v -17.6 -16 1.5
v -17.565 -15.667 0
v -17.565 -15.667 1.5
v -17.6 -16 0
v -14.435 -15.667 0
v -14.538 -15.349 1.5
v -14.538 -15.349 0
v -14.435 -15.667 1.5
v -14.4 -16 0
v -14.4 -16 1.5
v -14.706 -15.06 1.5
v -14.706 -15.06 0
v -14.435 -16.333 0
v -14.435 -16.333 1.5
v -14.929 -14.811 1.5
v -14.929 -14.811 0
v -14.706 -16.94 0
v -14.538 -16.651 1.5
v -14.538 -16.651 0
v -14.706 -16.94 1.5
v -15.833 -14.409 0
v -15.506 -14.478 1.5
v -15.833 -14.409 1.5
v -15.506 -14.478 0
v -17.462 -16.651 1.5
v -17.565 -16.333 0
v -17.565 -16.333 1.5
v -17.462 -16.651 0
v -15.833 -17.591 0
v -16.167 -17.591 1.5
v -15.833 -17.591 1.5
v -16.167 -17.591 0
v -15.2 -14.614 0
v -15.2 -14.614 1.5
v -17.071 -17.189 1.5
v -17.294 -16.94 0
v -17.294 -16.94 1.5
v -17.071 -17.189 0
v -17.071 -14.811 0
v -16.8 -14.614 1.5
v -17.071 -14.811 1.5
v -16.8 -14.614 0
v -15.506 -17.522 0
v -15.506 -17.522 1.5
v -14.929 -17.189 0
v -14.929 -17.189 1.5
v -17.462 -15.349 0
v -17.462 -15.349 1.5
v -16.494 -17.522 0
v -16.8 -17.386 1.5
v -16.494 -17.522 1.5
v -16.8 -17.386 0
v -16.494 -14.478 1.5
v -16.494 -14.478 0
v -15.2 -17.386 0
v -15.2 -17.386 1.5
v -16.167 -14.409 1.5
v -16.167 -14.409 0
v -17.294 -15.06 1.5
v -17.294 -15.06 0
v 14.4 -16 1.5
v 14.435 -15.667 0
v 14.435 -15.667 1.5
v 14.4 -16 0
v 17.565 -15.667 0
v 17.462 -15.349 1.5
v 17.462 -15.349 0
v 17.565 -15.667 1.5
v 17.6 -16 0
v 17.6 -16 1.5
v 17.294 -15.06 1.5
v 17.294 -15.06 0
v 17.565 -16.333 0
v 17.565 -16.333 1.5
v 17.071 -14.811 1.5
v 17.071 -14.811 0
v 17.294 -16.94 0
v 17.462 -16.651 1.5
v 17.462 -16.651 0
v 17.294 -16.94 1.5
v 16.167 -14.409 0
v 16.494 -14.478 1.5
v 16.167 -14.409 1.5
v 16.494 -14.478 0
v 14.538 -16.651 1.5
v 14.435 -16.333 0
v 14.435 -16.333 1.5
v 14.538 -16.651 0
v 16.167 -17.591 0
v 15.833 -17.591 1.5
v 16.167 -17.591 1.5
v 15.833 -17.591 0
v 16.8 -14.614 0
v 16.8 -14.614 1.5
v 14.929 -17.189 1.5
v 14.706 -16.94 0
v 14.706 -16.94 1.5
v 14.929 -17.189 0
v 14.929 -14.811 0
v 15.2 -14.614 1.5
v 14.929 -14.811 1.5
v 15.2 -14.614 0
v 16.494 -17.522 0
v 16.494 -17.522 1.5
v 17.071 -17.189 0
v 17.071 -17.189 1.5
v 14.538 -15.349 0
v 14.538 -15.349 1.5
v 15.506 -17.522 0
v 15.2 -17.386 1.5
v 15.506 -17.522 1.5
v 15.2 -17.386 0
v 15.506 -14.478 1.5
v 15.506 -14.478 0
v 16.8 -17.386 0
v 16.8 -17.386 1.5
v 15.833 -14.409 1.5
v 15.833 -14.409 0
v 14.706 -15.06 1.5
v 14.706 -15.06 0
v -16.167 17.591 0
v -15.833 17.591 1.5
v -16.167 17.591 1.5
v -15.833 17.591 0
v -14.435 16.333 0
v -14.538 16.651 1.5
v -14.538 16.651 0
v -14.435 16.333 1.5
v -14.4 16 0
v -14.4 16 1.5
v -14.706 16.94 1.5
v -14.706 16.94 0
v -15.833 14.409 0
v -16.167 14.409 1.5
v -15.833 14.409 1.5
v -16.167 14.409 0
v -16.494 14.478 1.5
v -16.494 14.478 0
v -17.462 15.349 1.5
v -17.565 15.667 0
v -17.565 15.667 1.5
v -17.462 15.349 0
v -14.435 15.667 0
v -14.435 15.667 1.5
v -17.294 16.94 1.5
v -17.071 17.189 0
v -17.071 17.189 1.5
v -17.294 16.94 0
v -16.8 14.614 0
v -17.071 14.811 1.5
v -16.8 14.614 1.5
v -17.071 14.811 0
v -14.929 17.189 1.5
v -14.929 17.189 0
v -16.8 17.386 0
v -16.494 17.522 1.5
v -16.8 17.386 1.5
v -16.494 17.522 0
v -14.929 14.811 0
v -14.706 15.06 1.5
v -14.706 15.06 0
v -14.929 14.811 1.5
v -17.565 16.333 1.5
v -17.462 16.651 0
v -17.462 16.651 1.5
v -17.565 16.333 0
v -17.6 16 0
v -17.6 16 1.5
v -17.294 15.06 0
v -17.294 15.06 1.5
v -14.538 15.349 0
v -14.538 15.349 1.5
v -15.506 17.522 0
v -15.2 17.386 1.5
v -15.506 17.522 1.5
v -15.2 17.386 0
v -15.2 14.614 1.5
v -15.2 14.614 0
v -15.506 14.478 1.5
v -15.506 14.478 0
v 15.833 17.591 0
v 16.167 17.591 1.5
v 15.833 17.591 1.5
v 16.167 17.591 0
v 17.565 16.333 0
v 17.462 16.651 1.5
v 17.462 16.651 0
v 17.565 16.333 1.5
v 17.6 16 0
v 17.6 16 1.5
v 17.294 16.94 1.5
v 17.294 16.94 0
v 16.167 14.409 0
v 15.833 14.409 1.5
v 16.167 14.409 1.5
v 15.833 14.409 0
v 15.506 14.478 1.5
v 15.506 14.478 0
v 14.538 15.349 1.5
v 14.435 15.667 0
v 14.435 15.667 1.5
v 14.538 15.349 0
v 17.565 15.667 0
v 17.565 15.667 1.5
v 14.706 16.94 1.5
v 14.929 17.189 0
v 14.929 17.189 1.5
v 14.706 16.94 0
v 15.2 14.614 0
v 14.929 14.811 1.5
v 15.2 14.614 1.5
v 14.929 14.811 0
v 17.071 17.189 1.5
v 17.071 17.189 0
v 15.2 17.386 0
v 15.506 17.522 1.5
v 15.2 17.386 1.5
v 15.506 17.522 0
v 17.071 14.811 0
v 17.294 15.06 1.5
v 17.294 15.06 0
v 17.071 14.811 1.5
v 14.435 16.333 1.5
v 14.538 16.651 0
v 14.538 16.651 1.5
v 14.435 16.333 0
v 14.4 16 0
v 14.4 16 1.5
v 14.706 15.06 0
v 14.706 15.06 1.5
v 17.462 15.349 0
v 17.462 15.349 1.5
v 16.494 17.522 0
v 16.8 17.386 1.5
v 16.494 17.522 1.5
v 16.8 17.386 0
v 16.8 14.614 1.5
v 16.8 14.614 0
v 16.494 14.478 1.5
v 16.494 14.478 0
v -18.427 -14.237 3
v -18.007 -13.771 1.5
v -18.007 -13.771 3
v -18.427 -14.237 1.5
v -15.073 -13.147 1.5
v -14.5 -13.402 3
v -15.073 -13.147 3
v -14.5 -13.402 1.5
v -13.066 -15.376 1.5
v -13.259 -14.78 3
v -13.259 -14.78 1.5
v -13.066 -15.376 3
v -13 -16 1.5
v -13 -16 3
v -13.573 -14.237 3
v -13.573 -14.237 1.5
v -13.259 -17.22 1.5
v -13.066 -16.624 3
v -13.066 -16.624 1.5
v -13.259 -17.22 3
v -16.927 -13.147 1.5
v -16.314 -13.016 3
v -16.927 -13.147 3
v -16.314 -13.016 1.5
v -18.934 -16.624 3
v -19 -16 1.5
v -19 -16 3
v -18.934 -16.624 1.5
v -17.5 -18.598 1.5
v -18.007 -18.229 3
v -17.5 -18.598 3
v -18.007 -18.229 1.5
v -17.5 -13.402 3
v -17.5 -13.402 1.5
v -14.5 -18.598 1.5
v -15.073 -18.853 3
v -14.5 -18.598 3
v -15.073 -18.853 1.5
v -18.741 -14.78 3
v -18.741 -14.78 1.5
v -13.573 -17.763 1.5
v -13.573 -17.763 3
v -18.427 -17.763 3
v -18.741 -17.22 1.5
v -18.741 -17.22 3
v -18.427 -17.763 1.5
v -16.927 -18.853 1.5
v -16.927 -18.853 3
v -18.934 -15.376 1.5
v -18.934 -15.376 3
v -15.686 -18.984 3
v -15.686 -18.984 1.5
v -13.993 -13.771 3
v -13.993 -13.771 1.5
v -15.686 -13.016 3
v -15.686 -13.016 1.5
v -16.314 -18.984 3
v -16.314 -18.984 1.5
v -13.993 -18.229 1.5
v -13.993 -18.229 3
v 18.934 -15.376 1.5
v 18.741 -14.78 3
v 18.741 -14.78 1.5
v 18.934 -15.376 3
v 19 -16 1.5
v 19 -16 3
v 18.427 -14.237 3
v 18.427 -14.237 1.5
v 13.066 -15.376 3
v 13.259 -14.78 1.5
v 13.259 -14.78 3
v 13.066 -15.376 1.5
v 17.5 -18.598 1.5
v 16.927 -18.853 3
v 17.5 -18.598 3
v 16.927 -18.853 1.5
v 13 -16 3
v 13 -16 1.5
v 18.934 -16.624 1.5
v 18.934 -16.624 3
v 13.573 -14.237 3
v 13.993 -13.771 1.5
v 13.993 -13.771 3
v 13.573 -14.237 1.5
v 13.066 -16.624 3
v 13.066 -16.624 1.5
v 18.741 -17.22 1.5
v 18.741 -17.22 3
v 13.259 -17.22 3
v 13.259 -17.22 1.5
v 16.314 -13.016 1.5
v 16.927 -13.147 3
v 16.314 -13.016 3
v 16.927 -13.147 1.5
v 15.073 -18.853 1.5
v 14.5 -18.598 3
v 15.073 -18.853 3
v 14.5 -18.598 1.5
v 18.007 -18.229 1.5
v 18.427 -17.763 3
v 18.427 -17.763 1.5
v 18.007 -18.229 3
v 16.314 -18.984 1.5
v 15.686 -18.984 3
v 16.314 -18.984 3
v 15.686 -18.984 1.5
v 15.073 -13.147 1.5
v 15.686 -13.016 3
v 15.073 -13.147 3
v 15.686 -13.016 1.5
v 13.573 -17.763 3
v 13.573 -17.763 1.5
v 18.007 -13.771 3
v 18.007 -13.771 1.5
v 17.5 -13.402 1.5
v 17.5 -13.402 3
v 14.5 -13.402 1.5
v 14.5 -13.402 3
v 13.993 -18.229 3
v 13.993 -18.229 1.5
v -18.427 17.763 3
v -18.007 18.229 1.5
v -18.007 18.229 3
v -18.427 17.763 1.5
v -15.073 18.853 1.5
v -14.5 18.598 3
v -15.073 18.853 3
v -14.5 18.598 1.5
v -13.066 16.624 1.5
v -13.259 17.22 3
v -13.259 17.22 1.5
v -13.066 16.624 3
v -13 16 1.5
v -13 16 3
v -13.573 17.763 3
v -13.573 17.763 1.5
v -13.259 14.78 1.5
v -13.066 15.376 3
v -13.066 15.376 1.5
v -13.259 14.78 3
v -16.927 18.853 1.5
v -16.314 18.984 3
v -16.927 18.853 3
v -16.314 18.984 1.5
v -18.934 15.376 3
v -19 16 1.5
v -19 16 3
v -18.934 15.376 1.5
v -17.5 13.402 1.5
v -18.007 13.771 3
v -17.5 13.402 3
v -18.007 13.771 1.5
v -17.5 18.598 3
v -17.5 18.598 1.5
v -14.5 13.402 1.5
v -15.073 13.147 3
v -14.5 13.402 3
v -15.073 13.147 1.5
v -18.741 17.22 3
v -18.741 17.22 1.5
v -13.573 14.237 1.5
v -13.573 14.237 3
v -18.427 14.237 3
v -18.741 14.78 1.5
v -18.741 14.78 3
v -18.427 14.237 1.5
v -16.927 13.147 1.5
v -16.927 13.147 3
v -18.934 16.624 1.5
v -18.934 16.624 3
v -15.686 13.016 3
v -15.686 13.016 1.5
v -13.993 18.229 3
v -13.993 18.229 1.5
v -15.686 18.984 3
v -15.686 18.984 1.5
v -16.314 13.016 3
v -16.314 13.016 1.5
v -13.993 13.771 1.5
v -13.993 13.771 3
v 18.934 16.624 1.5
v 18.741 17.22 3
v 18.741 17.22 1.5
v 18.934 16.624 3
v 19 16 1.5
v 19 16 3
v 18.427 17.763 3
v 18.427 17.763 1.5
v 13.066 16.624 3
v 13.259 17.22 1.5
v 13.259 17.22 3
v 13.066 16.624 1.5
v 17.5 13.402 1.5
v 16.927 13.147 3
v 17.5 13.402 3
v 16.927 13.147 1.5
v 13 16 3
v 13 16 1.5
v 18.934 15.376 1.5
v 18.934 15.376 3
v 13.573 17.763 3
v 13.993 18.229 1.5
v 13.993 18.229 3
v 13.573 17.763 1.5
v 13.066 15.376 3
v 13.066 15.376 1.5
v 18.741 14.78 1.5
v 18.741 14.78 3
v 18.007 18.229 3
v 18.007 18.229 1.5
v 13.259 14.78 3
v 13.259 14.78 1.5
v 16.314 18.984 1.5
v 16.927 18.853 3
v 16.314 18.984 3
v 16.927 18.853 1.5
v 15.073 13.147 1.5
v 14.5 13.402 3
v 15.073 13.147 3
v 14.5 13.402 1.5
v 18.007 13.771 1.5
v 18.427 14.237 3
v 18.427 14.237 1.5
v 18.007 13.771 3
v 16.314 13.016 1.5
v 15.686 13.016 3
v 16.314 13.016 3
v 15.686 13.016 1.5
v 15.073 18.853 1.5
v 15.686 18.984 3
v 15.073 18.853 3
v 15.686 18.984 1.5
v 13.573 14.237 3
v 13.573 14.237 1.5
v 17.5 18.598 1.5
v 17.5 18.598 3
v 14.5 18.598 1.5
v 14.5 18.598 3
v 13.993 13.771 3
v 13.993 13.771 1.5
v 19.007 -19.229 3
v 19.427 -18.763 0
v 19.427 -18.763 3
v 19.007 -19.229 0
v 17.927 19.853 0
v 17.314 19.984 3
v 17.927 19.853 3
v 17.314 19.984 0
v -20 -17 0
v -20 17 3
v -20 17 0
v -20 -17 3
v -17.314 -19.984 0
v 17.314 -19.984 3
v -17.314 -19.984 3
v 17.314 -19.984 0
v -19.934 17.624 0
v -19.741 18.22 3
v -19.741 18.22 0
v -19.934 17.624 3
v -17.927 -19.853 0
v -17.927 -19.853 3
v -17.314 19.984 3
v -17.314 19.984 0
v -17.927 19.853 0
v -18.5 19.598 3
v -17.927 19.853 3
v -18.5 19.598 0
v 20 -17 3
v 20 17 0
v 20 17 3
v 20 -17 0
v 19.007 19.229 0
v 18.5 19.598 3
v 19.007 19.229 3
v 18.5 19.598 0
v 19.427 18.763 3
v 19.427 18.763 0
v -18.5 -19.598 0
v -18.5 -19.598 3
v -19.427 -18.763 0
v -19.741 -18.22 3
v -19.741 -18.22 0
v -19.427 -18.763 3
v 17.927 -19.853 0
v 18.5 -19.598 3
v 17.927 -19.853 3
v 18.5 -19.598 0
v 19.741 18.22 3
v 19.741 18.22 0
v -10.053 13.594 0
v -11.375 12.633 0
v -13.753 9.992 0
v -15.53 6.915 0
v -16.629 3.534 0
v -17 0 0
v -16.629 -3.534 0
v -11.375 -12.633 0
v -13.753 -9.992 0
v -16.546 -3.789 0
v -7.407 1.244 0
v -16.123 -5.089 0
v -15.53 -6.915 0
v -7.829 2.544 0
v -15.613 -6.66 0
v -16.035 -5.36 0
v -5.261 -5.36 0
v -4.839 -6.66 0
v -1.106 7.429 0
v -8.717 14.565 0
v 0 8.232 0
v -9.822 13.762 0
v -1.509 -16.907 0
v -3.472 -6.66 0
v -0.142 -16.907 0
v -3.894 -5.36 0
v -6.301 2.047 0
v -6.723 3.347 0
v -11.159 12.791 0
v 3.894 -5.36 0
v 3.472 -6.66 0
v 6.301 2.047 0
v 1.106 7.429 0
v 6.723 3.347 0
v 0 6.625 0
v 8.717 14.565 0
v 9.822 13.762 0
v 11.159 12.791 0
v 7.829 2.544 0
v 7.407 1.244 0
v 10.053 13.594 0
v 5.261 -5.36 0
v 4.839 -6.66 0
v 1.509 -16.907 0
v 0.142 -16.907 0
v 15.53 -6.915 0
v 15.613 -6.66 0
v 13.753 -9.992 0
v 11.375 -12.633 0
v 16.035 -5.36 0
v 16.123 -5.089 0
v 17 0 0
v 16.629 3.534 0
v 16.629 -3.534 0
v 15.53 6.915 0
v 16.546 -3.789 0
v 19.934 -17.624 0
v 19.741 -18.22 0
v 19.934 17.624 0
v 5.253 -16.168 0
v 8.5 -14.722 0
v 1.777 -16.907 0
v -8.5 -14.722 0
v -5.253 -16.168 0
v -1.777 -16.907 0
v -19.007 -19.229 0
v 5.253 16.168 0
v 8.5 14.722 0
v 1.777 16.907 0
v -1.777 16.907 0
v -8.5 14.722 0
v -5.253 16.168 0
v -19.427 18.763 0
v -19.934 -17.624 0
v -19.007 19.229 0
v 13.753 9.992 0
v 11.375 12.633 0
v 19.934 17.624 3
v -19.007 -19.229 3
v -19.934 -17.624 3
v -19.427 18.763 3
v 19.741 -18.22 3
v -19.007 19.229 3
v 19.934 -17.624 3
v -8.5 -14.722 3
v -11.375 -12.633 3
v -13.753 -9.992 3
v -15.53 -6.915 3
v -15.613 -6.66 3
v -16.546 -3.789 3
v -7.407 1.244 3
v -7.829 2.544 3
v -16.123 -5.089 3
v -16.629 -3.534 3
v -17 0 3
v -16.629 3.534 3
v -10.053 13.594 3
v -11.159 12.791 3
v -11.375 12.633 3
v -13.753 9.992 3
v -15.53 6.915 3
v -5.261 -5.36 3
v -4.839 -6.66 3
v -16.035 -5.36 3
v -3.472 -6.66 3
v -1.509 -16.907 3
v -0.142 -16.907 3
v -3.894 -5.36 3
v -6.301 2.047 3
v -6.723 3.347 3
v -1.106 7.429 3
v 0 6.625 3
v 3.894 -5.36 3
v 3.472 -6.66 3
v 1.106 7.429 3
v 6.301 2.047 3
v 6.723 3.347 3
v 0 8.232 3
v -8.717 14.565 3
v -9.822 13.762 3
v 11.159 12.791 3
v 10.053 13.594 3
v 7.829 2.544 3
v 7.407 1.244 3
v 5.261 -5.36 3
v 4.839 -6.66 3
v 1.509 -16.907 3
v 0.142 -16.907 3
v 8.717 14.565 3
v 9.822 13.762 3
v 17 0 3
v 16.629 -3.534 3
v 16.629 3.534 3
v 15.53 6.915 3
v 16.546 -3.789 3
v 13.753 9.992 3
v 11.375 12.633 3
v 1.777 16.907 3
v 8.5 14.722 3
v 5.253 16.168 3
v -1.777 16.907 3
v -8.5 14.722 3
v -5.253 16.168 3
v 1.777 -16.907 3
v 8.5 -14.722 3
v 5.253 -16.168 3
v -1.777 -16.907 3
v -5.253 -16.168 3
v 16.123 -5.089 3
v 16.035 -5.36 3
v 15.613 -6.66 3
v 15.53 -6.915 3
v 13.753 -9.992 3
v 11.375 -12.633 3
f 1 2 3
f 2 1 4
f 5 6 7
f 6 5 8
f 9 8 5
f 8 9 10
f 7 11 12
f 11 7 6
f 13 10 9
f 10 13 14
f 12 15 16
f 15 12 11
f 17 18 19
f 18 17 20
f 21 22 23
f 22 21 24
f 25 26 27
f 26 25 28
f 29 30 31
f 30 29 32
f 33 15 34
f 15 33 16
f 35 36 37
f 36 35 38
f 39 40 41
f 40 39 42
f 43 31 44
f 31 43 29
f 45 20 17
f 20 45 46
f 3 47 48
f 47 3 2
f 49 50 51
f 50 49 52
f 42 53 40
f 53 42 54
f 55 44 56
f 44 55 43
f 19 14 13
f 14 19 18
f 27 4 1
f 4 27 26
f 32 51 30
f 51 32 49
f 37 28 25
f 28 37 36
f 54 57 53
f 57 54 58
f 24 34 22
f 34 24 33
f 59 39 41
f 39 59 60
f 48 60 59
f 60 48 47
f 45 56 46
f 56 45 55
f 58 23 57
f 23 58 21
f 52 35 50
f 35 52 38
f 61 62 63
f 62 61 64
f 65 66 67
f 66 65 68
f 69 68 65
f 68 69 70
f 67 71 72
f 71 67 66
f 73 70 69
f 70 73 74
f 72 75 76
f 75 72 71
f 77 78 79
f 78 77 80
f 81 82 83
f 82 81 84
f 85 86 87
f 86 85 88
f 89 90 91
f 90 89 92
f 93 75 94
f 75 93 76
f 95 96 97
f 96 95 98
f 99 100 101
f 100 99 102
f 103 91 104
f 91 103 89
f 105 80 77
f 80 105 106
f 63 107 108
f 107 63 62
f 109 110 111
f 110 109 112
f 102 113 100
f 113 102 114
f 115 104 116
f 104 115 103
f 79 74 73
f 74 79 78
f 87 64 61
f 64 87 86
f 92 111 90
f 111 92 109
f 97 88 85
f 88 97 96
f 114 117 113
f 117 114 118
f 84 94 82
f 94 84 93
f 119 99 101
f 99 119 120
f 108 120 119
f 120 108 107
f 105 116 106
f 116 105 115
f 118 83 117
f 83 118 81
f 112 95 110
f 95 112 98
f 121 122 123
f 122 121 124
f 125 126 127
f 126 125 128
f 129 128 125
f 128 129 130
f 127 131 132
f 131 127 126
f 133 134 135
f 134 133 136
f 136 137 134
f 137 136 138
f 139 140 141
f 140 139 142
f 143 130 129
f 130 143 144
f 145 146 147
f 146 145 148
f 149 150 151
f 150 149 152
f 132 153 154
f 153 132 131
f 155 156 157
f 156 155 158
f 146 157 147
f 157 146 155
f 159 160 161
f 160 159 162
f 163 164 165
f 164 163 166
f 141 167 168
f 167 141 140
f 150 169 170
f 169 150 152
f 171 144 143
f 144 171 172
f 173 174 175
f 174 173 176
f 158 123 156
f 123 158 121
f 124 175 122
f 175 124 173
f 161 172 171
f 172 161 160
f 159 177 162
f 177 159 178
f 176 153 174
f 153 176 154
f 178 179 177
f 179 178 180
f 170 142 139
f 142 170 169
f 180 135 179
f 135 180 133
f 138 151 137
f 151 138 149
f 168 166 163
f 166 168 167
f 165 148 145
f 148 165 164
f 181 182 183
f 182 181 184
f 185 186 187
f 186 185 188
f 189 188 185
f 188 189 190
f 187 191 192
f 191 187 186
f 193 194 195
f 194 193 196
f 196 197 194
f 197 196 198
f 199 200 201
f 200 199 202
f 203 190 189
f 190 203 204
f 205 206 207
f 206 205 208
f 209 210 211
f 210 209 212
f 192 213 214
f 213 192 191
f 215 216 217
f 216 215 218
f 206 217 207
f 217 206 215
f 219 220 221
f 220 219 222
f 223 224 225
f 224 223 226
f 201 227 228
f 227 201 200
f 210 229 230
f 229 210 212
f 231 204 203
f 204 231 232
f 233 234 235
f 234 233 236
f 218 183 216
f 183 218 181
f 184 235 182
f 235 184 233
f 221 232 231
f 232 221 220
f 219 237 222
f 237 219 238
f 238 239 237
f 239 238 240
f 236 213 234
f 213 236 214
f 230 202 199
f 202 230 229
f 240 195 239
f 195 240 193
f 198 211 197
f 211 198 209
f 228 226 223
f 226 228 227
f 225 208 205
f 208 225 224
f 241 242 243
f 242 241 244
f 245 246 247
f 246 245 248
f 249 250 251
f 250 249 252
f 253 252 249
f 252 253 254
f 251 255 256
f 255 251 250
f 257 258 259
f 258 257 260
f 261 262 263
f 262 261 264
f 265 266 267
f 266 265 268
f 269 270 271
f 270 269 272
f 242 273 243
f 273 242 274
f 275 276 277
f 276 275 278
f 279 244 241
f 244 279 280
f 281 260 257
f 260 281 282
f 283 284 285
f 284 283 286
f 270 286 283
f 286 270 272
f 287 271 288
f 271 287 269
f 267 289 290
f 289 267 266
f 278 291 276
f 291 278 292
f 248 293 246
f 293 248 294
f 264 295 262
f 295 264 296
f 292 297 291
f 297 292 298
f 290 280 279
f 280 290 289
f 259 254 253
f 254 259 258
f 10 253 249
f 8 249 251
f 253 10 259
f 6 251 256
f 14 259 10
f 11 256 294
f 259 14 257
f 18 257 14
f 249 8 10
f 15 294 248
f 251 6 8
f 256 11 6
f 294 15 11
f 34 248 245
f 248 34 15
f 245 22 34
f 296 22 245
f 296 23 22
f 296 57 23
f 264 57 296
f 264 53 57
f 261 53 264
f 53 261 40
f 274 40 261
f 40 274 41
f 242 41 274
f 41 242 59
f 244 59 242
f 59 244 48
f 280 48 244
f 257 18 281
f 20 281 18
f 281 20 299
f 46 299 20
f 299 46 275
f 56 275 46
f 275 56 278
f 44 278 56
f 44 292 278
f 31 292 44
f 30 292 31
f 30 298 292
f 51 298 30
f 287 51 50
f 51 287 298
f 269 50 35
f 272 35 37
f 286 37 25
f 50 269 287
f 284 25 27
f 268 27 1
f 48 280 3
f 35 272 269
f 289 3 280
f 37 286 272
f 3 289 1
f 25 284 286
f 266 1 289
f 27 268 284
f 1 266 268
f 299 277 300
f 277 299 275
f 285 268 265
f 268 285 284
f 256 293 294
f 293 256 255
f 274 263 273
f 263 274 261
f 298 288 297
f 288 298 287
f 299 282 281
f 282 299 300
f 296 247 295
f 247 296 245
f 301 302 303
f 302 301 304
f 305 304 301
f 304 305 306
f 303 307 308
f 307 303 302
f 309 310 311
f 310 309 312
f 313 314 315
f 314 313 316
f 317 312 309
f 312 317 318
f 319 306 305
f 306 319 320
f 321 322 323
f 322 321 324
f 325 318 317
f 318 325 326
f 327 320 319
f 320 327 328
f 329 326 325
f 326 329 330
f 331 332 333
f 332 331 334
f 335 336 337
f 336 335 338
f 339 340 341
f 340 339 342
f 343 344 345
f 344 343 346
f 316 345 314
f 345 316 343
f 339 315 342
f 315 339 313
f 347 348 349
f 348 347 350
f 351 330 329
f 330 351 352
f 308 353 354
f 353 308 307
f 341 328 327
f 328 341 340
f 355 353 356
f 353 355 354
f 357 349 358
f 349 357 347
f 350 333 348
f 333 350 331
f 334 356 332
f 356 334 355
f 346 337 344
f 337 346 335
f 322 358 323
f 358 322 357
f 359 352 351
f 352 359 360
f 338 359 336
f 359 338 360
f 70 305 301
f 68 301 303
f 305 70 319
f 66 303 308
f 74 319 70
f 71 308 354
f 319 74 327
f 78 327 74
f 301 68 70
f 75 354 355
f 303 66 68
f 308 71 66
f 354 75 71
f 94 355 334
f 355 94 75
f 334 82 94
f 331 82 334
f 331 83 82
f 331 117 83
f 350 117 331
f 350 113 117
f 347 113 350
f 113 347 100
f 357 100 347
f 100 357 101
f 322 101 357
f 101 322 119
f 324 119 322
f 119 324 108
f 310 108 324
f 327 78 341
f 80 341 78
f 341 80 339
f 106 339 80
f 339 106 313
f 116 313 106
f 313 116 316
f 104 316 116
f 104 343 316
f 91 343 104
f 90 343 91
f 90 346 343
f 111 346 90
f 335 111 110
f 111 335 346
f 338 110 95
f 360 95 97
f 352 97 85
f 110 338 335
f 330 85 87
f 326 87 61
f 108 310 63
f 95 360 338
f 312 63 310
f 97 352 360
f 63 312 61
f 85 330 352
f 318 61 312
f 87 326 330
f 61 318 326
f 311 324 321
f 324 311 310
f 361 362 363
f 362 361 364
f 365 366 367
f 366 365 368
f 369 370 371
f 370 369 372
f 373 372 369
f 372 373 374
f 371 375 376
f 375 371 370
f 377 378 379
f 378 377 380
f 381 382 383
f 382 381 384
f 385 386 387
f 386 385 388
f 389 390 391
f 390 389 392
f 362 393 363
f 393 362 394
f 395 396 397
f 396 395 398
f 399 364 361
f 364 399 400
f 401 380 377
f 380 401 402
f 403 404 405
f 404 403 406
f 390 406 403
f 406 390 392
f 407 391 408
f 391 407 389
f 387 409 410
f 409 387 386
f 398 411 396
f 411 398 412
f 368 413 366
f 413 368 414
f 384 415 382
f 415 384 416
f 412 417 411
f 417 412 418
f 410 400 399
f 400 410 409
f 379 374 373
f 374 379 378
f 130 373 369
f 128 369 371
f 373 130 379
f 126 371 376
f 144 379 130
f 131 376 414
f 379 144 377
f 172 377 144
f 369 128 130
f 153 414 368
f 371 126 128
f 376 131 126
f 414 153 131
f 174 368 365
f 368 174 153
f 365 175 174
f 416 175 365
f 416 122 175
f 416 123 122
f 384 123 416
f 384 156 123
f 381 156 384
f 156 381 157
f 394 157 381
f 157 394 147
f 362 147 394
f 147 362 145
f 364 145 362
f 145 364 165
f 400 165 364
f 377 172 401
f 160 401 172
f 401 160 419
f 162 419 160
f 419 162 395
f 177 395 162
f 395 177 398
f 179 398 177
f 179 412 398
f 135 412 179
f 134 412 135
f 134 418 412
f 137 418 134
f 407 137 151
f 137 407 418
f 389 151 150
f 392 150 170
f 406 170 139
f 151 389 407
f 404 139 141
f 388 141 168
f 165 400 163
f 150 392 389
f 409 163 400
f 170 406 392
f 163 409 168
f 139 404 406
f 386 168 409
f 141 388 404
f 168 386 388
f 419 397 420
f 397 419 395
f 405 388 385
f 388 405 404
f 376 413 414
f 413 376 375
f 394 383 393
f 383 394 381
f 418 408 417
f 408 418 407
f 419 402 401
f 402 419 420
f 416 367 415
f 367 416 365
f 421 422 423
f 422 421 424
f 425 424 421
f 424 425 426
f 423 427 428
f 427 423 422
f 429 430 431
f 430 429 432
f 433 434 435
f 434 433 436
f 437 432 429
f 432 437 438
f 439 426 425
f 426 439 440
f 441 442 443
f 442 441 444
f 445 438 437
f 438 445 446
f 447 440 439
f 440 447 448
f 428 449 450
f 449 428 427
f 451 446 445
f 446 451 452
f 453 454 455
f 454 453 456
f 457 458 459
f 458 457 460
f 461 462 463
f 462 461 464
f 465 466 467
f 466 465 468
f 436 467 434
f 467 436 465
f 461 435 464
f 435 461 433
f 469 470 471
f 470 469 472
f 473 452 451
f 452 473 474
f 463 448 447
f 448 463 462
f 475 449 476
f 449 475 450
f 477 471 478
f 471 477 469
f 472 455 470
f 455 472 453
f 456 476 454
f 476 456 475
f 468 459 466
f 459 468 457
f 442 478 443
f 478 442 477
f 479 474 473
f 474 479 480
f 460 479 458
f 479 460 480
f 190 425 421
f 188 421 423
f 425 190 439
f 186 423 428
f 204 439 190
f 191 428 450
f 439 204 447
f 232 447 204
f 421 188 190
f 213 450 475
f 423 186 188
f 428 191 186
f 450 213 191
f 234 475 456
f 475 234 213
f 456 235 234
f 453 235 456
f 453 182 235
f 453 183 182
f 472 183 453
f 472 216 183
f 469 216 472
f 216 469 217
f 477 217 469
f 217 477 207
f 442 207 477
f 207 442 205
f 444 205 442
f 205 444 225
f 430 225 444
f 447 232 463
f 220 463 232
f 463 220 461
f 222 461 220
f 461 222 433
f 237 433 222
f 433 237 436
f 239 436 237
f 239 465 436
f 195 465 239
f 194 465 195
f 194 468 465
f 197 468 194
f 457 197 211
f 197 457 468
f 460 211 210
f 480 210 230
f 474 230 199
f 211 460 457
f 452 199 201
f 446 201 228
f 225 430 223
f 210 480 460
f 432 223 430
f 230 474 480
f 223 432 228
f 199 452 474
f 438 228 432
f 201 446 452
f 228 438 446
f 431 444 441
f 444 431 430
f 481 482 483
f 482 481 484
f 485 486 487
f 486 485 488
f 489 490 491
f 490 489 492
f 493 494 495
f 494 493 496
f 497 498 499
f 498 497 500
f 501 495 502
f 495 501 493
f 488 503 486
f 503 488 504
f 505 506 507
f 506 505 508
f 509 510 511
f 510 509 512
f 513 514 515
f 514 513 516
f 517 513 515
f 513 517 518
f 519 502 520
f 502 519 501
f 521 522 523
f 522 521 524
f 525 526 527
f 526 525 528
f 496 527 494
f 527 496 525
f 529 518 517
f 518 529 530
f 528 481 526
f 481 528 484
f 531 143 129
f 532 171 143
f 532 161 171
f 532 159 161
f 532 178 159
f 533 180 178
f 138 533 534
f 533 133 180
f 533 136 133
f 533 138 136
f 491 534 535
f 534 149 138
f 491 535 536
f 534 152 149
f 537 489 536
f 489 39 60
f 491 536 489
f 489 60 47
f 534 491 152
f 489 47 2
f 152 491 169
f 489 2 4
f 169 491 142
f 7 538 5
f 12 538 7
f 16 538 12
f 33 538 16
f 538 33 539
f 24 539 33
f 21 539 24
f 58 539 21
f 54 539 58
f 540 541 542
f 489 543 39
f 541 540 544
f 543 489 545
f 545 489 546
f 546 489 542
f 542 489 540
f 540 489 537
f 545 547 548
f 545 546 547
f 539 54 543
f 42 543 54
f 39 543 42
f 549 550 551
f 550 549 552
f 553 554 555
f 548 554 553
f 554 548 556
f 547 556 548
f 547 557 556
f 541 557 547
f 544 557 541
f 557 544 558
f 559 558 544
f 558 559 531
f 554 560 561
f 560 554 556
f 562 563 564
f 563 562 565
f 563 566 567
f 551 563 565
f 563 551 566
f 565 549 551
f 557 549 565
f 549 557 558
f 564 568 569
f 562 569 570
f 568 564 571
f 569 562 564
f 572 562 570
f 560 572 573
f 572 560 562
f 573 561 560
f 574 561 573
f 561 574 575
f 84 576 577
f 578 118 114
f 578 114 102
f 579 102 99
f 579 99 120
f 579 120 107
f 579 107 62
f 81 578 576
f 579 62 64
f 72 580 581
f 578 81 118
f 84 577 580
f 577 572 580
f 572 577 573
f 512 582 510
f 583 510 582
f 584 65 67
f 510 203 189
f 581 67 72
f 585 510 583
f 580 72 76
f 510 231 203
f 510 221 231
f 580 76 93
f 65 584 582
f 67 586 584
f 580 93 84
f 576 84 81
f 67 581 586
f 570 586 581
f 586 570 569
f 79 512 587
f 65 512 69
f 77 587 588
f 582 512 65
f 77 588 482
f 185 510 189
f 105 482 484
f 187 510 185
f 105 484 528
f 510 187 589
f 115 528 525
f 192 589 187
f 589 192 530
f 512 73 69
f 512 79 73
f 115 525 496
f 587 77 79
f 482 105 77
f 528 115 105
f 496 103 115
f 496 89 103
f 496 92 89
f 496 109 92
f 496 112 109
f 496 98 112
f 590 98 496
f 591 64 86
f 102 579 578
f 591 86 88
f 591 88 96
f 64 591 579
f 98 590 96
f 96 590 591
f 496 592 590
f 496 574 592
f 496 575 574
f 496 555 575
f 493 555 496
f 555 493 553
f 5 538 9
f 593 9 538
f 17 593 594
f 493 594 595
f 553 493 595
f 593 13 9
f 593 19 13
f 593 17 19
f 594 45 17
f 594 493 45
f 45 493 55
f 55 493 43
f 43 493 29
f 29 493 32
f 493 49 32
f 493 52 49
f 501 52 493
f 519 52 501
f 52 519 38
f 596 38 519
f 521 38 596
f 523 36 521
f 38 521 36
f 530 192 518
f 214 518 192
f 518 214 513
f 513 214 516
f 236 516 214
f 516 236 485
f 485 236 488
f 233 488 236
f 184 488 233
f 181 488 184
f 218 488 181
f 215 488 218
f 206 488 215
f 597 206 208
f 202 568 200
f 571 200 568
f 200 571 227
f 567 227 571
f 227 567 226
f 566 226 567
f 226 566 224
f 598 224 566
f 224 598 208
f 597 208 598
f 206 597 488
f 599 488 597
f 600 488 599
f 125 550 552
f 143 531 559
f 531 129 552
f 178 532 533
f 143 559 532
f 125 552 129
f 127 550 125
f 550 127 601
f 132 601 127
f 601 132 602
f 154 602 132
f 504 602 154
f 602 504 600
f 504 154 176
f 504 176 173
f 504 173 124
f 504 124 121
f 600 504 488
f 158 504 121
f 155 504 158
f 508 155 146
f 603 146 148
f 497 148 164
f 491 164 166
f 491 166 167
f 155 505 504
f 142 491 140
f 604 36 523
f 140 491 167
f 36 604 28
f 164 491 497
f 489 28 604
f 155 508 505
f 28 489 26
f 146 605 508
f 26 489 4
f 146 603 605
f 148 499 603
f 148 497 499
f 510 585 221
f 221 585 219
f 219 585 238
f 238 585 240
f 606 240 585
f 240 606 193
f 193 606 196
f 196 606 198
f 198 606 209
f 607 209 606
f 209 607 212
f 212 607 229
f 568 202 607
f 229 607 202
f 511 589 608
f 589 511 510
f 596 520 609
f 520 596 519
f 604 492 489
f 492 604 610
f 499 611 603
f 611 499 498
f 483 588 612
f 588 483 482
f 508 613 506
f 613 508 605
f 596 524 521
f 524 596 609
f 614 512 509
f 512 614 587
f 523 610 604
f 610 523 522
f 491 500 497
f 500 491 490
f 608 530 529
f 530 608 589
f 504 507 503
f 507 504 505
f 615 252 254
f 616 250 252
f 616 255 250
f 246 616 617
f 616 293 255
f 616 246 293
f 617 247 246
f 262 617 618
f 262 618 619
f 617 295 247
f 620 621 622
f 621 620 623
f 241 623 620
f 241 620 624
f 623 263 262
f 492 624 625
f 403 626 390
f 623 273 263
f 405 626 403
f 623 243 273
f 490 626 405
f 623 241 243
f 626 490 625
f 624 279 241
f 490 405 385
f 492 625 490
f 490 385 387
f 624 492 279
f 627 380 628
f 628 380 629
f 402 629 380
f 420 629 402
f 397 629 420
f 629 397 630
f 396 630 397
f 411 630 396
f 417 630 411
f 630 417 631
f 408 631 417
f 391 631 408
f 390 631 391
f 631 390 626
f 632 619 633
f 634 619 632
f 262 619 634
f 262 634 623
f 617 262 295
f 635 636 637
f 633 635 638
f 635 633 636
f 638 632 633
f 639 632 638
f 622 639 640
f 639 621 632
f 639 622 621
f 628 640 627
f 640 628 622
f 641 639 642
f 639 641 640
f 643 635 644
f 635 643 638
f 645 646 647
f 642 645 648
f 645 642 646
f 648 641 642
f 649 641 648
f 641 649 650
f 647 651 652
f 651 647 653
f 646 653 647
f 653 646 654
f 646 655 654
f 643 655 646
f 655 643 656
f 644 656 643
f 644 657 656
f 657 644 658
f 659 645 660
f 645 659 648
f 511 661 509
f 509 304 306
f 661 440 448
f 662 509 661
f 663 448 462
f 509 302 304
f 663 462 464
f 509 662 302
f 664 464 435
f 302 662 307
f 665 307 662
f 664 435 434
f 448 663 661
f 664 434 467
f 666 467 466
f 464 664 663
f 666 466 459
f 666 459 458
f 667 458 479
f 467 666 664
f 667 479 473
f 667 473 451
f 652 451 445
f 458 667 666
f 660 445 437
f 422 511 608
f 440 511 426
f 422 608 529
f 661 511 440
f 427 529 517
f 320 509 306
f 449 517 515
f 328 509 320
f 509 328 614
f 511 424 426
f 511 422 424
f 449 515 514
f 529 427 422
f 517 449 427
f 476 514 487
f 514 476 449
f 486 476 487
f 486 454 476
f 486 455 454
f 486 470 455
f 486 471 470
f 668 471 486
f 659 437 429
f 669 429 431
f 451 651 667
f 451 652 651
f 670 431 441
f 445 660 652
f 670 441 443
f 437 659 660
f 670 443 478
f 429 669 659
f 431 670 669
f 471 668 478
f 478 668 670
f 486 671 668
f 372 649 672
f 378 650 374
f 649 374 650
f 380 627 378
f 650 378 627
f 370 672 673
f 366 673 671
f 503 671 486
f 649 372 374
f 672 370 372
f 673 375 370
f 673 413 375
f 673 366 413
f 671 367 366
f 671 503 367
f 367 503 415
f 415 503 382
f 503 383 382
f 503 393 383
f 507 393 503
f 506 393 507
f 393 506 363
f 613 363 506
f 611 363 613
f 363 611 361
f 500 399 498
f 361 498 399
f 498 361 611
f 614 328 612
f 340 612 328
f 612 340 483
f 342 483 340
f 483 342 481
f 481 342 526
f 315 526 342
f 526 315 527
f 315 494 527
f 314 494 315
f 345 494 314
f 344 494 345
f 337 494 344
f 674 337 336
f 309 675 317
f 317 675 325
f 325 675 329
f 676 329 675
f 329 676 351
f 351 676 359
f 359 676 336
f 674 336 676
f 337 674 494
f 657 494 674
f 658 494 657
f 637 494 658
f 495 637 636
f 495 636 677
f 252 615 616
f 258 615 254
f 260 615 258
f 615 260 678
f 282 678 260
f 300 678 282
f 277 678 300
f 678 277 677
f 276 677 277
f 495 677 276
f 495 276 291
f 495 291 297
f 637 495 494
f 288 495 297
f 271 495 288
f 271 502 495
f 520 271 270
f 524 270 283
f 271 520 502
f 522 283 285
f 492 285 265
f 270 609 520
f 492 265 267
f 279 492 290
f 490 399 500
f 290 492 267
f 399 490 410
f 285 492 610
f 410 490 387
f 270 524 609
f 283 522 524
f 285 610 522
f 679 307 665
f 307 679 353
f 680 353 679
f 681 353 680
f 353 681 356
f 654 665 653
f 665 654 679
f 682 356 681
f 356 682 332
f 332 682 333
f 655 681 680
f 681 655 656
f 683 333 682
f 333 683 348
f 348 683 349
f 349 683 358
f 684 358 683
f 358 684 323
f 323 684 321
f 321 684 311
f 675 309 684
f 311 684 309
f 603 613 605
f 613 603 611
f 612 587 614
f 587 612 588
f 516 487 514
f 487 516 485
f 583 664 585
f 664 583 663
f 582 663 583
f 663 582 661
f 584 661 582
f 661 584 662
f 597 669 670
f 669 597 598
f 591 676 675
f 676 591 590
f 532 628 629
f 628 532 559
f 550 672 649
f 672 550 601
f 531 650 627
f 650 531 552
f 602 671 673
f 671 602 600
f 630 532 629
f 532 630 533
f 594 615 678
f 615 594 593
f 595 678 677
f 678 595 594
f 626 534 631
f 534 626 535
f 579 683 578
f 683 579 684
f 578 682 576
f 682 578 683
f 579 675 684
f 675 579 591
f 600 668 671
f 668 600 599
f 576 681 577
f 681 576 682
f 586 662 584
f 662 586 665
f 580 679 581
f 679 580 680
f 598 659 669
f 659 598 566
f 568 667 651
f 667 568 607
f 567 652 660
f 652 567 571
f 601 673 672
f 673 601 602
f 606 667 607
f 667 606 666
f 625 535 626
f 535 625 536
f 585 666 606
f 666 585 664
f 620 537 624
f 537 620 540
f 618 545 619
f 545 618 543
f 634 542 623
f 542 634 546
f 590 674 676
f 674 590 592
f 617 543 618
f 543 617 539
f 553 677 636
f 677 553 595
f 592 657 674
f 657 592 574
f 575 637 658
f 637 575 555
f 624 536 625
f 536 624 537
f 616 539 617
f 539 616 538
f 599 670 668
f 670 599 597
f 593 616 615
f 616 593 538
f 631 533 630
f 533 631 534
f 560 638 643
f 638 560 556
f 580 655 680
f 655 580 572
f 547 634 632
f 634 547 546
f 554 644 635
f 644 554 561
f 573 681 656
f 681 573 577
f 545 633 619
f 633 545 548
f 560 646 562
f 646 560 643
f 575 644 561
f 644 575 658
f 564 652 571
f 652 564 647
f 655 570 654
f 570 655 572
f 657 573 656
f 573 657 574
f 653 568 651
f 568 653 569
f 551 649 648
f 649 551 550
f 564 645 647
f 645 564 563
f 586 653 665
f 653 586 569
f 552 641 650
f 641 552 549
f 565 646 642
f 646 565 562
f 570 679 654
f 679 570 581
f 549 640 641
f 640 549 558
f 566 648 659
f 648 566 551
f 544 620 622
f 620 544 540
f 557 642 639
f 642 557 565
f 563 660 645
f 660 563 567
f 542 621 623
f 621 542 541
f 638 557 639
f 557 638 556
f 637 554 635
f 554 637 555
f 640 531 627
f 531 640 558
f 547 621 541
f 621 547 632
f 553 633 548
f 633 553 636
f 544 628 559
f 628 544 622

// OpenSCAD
// (c) 2024 Lubomir Rintel
// Distributed under GPLv2+

zz=3;
rr=3;

$fn=30;

module cs(x,y,z,r=3)
{
    translate([-x/2,-y/2,0]) cylinder(z,r,r);
    translate([x/2,-y/2,0]) cylinder(z,r,r);    
    translate([-x/2,y/2,0]) cylinder(z,r,r);
    translate([x/2,y/2,0]) cylinder(z,r,r);    
}

module rib(n=0,zz=3,l=36)
{
    rotate([0,0,n*360/5])
        translate([-l/2,-6.66,0])
        cube([l,1.3,zz]);
}

difference() {
    hull()
        cs(40-rr*2,40-rr*2,zz,r=rr);
    translate([0,0,-10])
        cs(32,32,20,r=1.6);
    translate([0,0,-10])
        cylinder(20,17,17);
    translate([0,0,1.5])
        cs(32,32,20,r=3);    
}

for (i=[0:4]) rib(i, zz);
